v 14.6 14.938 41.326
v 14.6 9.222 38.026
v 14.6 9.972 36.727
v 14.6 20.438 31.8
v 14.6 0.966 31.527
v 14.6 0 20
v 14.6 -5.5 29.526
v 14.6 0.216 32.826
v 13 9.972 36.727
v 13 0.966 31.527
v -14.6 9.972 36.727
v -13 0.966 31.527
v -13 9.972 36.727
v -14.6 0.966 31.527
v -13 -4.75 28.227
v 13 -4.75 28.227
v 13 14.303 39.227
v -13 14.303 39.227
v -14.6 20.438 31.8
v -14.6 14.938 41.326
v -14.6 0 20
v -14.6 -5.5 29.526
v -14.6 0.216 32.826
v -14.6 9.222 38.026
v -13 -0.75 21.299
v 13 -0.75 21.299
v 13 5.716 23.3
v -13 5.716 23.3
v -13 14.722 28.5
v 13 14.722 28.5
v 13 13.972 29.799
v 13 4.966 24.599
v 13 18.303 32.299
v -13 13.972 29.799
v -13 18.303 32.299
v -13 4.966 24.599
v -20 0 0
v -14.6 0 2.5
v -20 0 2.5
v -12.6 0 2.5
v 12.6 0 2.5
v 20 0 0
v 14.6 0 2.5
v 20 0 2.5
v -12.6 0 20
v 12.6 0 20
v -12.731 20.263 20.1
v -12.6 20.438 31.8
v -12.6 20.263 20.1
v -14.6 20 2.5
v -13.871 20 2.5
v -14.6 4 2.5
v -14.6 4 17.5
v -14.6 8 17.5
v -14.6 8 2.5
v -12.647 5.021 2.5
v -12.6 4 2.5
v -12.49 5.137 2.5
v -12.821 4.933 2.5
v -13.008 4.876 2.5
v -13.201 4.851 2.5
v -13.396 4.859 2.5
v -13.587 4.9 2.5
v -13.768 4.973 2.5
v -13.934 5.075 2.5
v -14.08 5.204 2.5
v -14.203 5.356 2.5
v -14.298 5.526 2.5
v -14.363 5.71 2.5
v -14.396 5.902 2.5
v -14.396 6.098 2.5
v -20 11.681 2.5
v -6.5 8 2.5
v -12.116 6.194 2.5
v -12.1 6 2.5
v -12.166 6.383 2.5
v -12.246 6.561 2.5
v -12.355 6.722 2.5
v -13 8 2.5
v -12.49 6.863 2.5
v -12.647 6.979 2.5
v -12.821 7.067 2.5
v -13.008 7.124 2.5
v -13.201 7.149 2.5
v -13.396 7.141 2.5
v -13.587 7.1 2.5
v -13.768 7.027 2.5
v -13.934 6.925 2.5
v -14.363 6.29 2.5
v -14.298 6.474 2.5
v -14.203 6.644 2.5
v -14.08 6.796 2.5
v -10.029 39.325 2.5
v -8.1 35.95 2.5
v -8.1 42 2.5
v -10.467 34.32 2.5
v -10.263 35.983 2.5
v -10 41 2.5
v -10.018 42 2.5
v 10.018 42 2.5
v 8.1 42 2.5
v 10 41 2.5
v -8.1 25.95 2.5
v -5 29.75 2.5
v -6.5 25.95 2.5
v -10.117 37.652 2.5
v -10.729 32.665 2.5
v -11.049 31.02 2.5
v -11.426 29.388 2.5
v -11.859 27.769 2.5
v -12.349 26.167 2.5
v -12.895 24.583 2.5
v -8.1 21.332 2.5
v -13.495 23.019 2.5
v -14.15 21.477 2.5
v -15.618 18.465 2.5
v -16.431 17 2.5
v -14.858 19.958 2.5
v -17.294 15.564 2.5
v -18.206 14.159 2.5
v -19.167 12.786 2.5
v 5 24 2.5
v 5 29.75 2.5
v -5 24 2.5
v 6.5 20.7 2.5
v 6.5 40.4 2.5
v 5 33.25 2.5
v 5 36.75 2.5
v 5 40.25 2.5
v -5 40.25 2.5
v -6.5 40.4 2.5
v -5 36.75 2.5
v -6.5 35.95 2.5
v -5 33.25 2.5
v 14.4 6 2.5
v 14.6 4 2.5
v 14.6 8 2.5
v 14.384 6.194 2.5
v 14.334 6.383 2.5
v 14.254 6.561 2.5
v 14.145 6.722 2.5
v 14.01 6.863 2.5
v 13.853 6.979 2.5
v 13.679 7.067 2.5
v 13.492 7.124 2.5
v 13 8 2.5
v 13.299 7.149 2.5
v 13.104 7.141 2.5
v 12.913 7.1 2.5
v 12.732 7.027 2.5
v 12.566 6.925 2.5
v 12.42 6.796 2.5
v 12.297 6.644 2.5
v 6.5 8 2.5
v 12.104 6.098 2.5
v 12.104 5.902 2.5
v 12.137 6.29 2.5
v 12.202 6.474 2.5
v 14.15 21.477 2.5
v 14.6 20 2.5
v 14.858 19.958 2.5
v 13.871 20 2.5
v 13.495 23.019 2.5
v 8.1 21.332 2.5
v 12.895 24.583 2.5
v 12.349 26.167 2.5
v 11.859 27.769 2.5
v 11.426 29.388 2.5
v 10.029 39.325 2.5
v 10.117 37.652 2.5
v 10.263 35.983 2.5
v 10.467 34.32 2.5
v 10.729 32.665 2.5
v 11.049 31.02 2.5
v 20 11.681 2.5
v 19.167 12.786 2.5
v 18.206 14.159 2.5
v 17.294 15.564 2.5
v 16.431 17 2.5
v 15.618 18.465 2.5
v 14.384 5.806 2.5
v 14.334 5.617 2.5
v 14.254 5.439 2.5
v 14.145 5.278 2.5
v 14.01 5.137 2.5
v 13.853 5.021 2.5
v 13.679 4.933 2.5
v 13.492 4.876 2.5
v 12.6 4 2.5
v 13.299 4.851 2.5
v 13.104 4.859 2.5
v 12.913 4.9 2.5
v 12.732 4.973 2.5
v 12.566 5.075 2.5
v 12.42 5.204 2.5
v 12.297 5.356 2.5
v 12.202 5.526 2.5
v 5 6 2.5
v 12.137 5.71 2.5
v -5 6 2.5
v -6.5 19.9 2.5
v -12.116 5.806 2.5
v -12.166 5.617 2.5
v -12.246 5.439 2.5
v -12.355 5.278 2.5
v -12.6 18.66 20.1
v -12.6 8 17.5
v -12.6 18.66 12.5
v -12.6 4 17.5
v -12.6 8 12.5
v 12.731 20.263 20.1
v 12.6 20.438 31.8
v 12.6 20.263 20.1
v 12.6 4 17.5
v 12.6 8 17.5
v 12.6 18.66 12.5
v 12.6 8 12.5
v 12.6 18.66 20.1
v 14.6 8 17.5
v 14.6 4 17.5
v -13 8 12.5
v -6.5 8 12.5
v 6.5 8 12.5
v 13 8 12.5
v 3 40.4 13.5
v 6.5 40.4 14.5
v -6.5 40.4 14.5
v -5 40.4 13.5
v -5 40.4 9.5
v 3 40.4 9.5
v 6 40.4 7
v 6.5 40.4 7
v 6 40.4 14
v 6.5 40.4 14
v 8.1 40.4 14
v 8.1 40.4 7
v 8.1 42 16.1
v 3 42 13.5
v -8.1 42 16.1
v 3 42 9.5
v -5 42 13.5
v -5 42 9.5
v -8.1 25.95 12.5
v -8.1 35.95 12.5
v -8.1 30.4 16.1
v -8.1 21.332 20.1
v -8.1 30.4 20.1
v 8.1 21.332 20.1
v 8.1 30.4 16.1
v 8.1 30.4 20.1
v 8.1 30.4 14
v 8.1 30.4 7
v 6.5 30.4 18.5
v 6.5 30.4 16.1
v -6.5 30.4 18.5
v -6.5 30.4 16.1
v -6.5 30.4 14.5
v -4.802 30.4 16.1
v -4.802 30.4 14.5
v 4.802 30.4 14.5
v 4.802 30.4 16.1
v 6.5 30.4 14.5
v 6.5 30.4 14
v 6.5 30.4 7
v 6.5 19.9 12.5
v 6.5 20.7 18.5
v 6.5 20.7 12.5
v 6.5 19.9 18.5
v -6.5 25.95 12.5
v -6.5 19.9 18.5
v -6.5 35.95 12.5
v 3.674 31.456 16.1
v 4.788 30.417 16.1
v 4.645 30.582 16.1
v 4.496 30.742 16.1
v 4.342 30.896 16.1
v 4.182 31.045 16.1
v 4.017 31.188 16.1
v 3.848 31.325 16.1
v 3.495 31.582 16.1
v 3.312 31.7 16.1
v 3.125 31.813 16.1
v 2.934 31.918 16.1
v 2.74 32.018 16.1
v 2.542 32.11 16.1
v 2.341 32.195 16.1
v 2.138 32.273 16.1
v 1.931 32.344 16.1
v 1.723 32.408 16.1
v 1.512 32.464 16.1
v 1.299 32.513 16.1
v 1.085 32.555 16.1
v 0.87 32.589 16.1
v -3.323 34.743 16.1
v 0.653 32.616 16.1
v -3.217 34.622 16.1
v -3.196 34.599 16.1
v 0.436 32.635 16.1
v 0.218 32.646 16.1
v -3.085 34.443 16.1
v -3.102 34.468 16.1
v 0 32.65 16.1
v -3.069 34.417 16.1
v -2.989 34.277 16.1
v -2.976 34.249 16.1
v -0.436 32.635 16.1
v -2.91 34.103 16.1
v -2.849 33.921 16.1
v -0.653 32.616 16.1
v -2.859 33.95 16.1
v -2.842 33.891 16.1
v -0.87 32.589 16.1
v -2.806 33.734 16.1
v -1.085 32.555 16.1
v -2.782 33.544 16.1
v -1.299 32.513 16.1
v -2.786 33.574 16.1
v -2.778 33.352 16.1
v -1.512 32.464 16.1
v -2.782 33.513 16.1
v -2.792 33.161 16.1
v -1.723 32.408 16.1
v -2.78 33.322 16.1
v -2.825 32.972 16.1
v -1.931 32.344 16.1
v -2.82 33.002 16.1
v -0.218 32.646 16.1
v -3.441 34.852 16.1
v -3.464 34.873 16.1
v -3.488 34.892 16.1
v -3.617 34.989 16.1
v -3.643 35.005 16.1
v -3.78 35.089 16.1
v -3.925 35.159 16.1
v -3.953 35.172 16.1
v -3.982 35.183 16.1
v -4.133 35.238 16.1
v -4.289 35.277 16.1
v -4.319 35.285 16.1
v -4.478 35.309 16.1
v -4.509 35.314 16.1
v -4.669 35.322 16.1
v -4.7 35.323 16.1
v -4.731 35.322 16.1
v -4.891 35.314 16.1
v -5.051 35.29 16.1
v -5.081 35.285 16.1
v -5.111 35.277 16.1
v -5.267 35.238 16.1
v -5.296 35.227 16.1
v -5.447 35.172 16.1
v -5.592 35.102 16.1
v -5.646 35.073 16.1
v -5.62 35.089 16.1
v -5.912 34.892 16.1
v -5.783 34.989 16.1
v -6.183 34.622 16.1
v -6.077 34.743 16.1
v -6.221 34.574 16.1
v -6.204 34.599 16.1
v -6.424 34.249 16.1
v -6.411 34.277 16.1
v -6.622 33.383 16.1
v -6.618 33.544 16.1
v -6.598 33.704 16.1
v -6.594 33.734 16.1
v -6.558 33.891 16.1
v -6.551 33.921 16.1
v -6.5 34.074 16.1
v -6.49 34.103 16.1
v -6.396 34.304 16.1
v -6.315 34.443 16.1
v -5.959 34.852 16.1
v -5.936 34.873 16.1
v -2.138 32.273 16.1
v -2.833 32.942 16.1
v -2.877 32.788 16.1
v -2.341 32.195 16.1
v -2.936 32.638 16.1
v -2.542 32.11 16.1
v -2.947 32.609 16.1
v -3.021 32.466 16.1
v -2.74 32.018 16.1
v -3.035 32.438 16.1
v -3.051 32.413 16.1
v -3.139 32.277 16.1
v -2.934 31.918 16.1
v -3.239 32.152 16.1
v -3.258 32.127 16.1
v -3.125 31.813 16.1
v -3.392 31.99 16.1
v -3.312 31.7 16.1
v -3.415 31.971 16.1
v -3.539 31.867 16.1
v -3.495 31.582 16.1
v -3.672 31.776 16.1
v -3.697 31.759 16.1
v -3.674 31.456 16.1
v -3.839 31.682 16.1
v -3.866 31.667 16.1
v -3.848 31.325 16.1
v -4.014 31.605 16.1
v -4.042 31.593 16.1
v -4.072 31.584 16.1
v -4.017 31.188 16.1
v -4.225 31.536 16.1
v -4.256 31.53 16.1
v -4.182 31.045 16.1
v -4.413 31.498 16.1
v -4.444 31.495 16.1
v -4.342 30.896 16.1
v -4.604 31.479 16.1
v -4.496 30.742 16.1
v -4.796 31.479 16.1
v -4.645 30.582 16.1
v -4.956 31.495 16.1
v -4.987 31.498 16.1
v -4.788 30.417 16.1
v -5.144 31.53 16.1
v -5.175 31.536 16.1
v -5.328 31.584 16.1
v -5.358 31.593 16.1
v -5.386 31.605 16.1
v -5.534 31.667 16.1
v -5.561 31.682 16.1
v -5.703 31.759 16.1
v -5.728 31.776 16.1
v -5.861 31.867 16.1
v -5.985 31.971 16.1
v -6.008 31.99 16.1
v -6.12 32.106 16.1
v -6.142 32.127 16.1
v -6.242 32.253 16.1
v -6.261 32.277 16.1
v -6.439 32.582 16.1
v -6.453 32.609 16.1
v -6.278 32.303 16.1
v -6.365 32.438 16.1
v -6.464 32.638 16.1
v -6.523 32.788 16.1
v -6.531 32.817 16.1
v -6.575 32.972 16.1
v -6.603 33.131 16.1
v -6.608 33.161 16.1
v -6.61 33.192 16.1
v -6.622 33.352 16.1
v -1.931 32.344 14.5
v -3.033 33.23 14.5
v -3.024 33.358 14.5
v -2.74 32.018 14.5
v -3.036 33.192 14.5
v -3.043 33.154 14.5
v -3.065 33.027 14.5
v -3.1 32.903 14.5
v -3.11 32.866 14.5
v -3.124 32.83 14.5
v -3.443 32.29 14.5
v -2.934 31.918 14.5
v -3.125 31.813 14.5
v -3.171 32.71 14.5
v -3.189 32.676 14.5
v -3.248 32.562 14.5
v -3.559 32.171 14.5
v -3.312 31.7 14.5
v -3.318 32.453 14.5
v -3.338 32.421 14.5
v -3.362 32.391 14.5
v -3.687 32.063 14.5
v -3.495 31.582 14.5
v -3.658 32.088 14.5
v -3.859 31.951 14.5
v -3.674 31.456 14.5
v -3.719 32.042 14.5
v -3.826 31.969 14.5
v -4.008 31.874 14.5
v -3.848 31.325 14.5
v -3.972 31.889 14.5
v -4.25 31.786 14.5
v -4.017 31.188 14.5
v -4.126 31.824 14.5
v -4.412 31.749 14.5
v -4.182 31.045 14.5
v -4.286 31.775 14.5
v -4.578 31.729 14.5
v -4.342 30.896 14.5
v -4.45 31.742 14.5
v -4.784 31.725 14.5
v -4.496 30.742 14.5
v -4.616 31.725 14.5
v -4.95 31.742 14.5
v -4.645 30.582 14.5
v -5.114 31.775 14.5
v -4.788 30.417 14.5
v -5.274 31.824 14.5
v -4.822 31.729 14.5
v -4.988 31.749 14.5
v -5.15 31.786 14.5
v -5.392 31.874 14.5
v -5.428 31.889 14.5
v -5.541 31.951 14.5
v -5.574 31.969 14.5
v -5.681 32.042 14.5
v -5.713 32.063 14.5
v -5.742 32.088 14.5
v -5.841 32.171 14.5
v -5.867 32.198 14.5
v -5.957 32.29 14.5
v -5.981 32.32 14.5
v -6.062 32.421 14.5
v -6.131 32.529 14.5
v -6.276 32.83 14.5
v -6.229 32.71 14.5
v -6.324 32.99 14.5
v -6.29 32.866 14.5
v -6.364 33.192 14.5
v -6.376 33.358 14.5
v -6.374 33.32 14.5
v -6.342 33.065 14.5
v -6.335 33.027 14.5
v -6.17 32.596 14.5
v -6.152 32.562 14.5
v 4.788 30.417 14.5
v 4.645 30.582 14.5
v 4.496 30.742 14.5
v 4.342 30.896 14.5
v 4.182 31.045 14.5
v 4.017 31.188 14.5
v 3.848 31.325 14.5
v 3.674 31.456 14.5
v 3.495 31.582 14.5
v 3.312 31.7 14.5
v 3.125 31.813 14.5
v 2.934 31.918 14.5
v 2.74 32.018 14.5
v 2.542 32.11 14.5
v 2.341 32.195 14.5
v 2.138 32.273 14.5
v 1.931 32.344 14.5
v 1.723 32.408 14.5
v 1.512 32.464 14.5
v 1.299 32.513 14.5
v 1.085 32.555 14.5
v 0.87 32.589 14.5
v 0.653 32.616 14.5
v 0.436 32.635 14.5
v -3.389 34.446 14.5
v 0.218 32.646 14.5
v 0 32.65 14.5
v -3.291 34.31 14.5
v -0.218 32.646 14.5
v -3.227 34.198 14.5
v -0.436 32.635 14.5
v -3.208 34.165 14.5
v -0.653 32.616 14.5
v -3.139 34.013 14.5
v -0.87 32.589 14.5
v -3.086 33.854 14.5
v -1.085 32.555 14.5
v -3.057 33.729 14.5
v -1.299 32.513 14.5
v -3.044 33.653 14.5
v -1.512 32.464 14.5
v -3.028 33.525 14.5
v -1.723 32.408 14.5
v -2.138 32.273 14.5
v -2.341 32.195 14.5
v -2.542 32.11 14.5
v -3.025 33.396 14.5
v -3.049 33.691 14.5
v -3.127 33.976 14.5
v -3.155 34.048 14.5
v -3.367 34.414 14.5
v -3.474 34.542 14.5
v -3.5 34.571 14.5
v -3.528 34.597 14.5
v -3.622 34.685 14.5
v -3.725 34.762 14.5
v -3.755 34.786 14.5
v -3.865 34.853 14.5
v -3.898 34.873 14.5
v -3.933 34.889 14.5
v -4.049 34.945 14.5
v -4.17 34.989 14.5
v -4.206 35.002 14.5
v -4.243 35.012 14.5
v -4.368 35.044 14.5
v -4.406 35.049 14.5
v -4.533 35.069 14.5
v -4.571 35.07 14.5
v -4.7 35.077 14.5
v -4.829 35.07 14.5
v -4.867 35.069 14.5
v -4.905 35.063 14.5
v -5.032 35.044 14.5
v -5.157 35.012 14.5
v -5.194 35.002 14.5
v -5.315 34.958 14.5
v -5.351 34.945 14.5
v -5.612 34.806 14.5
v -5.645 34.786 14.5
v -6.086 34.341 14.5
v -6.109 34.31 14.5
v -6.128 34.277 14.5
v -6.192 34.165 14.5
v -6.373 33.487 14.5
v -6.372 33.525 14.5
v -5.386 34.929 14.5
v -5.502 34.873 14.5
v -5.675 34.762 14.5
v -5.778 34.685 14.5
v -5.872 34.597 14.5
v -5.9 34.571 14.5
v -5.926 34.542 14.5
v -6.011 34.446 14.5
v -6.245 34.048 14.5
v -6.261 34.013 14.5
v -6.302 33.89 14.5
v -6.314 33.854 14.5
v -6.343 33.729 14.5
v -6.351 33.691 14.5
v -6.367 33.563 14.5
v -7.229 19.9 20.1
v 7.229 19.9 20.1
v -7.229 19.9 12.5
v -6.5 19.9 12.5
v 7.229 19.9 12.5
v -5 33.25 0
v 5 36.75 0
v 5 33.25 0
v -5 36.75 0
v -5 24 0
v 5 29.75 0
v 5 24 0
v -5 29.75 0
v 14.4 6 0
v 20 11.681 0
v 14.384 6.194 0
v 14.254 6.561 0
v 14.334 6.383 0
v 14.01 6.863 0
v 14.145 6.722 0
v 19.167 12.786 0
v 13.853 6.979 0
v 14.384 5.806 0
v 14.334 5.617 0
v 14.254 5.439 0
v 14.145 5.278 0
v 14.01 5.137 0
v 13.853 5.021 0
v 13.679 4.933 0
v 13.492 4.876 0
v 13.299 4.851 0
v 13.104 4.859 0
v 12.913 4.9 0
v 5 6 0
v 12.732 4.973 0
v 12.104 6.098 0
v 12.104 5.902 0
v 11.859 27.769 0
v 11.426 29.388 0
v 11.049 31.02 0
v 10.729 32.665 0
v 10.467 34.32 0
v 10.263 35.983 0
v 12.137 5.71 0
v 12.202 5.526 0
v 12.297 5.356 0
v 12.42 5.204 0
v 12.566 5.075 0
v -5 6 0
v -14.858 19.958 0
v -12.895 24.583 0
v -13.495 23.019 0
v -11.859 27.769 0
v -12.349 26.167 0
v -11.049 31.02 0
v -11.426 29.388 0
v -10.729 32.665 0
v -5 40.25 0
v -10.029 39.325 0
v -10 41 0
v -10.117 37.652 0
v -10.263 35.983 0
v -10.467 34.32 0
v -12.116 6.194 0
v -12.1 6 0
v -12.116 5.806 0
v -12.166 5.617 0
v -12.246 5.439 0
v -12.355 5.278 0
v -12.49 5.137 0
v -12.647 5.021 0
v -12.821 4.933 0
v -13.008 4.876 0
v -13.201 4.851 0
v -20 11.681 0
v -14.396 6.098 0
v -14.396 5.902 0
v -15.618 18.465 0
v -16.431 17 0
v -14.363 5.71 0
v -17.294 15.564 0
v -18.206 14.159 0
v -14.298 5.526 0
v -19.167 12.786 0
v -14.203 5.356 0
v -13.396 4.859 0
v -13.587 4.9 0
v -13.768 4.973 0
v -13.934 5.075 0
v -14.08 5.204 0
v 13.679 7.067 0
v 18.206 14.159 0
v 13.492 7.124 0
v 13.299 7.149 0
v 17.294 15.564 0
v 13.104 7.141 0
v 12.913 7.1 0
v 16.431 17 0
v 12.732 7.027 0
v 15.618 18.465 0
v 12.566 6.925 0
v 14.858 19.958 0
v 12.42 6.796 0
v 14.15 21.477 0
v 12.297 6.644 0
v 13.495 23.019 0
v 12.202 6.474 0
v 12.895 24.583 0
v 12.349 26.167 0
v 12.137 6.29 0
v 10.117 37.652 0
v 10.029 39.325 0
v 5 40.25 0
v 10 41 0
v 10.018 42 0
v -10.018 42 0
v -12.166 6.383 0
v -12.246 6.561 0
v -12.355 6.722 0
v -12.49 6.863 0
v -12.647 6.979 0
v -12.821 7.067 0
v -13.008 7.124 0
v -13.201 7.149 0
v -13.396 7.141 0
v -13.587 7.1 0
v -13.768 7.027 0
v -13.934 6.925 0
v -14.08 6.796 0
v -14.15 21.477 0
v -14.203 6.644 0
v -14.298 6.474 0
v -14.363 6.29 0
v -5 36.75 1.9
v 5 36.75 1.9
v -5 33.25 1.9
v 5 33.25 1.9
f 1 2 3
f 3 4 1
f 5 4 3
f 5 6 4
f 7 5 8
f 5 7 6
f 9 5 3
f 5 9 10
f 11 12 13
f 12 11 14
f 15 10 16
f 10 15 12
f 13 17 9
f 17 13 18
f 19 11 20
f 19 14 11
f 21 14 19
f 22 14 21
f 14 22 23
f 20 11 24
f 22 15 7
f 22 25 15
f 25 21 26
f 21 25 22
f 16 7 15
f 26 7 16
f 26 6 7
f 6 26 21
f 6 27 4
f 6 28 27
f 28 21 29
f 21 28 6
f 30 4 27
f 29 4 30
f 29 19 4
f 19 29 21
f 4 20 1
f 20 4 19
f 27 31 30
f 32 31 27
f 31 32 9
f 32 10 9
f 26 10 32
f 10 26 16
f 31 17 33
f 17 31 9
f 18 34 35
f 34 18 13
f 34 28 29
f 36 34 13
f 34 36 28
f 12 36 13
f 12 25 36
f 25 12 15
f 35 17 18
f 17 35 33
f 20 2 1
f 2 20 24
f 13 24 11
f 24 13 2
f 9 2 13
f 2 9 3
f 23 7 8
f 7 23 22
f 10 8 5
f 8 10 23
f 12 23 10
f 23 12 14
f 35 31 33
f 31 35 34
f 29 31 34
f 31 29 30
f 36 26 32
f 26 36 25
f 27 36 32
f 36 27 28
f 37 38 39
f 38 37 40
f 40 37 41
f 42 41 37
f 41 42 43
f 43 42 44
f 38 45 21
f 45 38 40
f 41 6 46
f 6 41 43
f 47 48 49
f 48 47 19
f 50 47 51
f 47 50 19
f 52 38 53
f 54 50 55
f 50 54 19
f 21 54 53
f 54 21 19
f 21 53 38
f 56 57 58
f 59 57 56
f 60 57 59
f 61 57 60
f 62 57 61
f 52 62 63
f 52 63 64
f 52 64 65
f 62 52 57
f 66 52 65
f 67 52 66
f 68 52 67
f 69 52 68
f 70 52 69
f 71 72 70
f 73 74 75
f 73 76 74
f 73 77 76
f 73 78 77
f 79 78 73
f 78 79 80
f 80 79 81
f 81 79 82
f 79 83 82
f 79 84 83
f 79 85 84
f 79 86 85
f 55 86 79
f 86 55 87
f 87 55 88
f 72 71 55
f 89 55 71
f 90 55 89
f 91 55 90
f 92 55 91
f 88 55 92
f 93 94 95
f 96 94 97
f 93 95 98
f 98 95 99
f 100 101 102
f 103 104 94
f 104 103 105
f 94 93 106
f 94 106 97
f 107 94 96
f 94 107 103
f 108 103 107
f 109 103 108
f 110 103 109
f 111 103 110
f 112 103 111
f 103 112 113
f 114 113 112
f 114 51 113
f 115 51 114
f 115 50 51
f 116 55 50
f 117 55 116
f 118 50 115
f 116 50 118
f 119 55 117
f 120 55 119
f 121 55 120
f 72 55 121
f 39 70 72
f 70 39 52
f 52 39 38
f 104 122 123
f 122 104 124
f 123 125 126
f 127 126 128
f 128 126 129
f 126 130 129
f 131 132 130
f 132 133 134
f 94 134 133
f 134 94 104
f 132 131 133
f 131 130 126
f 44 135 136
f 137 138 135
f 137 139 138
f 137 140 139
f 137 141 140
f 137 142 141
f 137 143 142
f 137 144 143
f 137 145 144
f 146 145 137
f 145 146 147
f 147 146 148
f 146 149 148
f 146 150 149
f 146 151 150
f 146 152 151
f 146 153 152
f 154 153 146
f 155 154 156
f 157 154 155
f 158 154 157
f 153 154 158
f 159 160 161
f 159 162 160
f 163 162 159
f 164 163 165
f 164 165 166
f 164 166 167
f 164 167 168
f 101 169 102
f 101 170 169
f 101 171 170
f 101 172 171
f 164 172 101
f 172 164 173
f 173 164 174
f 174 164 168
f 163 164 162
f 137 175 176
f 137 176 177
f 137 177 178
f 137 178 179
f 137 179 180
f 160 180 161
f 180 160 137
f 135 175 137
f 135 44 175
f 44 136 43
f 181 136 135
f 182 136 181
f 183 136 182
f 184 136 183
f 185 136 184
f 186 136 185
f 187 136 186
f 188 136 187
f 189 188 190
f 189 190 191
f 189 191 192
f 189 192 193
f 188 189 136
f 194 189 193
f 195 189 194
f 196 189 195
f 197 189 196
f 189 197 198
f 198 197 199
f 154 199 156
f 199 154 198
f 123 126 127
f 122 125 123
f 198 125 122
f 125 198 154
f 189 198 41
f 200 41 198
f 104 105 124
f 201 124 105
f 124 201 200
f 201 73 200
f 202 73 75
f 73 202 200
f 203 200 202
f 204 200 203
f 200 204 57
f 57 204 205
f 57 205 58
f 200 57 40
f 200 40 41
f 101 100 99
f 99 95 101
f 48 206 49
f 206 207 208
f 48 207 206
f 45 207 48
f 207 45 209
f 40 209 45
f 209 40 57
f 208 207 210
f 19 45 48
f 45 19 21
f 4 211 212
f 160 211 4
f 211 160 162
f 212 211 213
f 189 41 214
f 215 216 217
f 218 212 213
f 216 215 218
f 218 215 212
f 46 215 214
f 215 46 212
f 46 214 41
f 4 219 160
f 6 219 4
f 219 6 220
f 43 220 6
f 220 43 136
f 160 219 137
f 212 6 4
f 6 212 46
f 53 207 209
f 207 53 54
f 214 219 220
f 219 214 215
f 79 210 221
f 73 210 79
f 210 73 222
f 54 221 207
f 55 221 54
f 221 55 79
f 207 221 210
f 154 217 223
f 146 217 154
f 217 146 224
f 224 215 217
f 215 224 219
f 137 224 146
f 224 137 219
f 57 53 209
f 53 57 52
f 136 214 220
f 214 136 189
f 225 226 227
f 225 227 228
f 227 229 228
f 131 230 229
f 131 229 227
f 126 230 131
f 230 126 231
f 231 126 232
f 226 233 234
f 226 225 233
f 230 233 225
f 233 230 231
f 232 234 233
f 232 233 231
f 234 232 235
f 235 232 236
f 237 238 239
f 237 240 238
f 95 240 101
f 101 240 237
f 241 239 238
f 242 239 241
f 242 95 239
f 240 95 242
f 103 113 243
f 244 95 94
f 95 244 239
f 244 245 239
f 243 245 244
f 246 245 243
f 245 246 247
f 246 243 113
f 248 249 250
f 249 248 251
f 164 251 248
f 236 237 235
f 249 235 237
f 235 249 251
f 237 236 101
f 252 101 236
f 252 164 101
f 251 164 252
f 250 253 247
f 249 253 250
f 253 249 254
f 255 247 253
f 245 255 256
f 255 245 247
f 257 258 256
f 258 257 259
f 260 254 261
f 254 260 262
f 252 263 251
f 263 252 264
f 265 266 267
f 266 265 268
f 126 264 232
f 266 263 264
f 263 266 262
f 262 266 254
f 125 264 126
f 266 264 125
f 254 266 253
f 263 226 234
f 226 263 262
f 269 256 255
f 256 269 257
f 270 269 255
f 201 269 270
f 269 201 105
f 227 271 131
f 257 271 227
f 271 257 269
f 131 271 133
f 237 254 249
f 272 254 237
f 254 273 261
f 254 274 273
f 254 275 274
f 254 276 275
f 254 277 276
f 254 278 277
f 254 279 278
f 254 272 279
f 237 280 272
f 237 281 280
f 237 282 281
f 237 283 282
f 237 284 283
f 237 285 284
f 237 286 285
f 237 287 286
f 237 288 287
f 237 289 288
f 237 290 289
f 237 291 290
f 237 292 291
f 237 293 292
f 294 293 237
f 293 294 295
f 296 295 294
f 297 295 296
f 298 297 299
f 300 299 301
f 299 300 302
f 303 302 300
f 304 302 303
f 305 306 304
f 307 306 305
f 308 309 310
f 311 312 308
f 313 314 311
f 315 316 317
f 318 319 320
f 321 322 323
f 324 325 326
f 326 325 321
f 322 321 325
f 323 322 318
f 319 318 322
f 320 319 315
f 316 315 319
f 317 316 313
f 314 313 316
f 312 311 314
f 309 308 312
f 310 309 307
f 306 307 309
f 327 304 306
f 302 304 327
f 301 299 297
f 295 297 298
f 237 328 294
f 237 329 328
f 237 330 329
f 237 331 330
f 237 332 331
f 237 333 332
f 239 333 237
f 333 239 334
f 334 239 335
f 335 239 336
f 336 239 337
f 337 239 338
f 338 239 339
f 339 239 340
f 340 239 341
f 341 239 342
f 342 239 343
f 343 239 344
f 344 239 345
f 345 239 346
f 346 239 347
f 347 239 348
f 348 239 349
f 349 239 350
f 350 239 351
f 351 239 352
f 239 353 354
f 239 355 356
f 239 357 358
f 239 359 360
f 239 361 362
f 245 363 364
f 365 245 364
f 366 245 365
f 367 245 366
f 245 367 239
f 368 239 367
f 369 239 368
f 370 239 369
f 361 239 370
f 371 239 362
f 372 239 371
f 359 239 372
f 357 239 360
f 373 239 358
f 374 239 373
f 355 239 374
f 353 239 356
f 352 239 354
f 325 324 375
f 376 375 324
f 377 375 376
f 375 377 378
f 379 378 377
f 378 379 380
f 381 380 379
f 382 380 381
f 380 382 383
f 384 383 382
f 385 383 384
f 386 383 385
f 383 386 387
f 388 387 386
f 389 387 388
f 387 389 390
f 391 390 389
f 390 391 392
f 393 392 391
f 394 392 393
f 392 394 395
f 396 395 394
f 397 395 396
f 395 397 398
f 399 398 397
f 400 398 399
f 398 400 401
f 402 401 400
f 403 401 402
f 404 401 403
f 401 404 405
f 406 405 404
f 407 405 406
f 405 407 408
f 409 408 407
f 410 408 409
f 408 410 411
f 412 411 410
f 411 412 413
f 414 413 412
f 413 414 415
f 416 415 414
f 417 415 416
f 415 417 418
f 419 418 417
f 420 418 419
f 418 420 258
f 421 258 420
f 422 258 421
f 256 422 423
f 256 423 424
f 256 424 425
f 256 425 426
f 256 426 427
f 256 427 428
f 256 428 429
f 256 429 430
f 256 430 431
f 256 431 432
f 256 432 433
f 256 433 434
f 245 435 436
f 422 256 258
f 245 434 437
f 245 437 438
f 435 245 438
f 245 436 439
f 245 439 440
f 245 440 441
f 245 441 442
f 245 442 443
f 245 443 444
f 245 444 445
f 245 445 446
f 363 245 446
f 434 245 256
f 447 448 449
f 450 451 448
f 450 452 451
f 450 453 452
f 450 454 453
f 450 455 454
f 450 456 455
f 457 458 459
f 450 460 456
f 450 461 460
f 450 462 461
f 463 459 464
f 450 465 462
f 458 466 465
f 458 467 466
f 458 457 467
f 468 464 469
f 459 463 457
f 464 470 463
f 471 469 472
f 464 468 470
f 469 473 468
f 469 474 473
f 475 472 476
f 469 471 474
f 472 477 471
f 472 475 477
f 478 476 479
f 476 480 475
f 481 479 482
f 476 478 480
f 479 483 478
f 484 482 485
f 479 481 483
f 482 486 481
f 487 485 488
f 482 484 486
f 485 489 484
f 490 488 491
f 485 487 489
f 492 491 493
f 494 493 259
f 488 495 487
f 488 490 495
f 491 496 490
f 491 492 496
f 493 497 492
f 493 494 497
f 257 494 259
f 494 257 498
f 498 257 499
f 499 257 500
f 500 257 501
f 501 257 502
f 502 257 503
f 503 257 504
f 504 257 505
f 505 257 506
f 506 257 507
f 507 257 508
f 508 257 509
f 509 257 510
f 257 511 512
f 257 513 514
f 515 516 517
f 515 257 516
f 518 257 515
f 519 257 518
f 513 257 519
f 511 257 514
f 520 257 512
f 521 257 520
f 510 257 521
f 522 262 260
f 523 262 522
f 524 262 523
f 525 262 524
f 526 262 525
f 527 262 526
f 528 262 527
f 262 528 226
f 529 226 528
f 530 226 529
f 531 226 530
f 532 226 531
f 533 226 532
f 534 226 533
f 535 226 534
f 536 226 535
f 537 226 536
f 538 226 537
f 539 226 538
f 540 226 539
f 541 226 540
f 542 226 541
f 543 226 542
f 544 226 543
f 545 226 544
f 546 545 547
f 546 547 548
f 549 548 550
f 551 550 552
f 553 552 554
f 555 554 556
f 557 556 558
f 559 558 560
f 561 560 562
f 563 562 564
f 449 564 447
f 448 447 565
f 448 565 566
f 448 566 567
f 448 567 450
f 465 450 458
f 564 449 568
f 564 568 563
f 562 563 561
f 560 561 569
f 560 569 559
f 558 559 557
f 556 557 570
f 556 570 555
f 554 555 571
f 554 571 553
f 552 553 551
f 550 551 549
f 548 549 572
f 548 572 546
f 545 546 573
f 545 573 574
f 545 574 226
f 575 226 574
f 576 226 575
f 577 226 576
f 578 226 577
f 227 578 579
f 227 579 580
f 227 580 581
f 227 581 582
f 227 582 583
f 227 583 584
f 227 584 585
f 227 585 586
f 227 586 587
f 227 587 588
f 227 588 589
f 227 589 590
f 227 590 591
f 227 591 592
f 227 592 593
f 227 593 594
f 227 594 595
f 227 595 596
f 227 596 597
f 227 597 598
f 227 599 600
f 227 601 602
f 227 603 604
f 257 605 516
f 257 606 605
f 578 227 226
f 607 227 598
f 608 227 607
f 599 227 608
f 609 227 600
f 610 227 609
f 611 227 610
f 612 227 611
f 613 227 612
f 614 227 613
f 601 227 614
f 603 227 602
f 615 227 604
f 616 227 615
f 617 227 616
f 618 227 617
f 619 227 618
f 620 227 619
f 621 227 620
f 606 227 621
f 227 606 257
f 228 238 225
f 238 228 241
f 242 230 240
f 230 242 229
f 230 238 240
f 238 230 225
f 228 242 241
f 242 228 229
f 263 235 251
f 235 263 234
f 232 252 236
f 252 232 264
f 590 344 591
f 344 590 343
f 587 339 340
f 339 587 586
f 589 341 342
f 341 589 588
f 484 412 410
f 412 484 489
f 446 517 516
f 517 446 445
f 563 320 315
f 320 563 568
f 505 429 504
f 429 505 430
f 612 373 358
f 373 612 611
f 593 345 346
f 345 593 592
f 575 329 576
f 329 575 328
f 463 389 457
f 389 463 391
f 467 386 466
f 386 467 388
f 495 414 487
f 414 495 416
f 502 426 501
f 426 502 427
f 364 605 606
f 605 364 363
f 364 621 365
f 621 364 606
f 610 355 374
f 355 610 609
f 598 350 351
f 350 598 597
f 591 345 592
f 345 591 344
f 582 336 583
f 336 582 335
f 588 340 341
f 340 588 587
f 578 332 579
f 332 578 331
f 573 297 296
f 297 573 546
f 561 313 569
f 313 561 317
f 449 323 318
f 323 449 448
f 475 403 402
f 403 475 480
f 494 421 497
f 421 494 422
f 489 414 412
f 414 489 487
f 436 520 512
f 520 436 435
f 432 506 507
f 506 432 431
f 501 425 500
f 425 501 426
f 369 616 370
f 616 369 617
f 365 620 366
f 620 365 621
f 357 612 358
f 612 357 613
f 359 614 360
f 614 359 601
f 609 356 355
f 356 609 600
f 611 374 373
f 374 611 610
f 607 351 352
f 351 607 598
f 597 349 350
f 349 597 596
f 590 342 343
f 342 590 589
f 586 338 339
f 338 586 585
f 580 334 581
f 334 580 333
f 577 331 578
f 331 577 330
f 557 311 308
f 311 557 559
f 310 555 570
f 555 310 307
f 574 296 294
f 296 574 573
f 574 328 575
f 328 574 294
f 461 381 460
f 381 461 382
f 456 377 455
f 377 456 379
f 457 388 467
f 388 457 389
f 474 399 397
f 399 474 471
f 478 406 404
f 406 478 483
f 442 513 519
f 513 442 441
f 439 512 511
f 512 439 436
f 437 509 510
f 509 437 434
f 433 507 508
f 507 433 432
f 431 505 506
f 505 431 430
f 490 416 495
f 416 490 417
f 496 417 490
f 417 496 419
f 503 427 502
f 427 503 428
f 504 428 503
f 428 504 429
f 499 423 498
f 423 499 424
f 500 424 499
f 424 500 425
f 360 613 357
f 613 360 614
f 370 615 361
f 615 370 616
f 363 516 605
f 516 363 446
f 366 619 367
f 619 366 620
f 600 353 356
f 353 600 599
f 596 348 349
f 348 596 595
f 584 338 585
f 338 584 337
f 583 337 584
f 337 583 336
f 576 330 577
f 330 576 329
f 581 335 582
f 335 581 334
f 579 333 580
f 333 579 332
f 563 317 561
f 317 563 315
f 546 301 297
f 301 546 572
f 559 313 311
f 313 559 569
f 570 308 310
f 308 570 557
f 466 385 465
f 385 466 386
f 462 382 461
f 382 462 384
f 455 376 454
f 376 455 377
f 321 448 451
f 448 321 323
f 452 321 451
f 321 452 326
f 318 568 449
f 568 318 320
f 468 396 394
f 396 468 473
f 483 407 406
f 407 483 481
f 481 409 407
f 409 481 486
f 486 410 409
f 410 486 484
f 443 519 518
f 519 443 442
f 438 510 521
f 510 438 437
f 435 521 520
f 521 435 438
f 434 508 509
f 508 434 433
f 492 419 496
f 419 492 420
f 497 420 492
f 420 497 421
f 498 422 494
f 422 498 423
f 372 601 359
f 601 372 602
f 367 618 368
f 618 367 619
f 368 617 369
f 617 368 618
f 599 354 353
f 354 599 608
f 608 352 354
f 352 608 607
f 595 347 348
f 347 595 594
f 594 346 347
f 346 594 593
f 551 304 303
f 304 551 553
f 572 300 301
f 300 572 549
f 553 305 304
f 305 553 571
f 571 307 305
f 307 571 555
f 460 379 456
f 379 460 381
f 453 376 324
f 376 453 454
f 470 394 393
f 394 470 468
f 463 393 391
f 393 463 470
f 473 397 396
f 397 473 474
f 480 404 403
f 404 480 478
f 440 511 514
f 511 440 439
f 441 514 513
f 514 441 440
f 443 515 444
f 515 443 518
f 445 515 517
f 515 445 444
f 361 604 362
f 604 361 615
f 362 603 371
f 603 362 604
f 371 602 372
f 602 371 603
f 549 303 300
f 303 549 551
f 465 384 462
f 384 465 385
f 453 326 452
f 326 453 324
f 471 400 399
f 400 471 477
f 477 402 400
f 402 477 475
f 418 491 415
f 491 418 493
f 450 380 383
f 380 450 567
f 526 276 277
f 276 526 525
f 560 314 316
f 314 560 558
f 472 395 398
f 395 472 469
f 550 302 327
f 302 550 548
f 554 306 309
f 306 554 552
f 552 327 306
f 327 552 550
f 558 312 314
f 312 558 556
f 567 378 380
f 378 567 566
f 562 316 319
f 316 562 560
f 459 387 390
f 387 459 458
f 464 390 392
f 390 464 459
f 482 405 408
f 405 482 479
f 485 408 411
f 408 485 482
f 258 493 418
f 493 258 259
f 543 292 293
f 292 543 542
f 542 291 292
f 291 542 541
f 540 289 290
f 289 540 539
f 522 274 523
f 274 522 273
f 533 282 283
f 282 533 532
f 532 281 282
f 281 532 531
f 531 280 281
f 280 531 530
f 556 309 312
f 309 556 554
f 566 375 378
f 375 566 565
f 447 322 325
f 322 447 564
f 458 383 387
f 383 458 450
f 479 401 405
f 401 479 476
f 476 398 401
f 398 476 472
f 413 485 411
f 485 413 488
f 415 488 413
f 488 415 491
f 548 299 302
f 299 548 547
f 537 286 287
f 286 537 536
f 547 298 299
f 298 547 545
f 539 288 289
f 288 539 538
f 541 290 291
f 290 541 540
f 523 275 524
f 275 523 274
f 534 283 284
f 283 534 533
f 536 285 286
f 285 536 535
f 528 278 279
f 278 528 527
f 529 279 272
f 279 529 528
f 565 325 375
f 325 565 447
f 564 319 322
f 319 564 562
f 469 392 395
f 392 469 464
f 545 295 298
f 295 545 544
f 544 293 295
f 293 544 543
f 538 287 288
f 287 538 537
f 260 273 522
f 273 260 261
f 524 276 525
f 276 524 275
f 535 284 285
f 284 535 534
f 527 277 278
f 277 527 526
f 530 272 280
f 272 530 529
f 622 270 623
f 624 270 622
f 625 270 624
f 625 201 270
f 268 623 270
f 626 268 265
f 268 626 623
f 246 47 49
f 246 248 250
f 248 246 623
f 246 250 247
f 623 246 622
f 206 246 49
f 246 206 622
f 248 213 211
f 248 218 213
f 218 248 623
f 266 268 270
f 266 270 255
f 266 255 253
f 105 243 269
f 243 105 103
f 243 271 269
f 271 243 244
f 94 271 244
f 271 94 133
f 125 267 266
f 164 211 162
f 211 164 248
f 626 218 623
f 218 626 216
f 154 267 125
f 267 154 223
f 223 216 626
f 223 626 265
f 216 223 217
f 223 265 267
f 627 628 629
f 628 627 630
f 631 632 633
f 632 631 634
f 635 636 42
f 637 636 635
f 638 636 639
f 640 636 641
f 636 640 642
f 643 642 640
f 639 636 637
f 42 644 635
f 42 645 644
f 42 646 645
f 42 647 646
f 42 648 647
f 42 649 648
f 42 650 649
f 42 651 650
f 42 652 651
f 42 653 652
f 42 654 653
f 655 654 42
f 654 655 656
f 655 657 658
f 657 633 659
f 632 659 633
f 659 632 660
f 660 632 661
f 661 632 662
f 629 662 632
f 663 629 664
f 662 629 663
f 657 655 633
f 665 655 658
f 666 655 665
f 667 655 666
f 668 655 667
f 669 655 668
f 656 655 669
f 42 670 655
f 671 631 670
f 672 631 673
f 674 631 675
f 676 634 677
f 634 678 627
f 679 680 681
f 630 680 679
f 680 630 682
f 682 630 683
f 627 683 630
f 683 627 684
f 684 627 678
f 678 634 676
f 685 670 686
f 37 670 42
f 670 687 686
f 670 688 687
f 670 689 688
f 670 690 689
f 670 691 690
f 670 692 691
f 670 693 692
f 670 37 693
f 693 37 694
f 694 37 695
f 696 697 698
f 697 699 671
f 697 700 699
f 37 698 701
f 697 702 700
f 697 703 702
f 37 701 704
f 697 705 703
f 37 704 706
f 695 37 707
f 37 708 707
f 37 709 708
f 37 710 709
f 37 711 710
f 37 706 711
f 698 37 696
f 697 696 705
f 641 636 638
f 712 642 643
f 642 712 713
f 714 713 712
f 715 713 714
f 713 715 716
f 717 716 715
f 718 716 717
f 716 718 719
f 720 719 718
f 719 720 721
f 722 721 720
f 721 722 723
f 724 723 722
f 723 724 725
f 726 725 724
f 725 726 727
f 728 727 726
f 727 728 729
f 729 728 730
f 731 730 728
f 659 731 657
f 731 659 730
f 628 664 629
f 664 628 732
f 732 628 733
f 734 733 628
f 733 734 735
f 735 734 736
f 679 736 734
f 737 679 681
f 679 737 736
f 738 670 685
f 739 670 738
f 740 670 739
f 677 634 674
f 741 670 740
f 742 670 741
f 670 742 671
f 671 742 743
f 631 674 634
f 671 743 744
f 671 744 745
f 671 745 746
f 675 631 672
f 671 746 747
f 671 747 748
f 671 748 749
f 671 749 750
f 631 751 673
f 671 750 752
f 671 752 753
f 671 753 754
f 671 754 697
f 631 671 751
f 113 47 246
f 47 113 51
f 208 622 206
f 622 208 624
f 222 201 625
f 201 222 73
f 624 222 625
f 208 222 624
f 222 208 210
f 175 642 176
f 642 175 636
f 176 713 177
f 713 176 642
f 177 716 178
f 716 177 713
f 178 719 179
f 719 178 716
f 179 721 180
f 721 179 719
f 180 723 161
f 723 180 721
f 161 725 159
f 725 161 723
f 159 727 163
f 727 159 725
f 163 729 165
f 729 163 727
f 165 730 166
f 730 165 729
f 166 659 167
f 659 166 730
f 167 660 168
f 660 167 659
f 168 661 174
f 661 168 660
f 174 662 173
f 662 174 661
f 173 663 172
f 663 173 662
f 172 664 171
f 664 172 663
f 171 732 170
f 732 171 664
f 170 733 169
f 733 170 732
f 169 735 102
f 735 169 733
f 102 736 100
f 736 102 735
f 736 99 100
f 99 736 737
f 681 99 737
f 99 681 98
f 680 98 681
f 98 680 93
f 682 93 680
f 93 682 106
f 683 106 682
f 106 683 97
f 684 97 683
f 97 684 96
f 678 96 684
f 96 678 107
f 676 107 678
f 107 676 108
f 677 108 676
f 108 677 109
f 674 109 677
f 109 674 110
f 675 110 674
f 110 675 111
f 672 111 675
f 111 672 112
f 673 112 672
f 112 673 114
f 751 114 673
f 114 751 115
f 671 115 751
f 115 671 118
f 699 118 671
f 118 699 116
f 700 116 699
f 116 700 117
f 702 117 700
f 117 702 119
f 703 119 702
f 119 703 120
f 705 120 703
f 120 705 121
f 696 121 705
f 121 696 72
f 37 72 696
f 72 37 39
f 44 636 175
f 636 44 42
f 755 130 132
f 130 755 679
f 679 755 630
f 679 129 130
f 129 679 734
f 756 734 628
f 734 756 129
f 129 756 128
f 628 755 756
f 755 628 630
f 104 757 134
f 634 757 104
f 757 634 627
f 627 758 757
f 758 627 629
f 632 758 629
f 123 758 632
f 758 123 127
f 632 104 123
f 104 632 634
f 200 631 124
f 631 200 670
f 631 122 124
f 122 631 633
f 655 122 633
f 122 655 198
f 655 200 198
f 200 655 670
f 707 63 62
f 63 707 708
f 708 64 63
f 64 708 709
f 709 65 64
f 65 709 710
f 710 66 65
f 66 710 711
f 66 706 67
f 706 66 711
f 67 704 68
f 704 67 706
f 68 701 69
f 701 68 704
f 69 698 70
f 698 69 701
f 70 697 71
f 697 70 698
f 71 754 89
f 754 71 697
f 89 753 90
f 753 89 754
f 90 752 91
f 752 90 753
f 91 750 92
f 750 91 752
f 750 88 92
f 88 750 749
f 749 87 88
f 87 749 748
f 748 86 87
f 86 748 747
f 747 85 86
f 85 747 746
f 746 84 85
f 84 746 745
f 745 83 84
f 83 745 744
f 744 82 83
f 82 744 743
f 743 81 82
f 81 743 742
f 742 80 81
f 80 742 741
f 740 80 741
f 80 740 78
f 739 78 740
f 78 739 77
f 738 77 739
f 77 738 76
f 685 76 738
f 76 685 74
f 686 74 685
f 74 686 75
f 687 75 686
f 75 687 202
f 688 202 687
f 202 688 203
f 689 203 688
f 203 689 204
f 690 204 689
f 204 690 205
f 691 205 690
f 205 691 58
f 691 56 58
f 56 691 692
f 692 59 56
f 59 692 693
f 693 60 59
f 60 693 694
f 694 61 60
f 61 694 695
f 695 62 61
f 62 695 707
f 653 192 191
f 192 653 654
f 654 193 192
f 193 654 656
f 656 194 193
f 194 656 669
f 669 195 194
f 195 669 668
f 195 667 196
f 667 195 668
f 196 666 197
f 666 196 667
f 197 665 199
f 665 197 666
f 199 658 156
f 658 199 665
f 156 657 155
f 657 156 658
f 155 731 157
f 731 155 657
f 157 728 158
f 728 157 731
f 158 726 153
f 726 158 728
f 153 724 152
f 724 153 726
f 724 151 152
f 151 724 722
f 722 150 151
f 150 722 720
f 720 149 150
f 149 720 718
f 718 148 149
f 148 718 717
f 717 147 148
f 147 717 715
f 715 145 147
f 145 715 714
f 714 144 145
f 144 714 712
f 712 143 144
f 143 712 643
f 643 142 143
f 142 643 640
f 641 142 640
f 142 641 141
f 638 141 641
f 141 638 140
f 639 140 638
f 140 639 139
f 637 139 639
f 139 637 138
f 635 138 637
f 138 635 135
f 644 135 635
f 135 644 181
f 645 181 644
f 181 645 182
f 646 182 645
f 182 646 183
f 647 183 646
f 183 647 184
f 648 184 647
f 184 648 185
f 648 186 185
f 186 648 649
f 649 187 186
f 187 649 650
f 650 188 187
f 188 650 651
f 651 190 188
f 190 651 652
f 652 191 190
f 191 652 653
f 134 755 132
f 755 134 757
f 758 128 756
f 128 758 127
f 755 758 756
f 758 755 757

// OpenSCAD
// M80 Pro GPS + VIFLY Finder 2 mount for iFlight Protek 35

$fs = $preview ? 0.5 : 0.2;
$fa = $preview ? 10 : 2;

// base plate
h0 = 2.5;

// P35 mounting plate
w0 = 40;
l0 = 42;

// mounting holes placement
dh = 2.3; // hole diameter
w1 = 26.5;
l1 = 6;
sd = 4.0; // scredriver diameter
sdh = 15; // scredriver hold heights

// duct radius cutout
duct_x = 58;
duct_y = 41;
duct_r = 48;

// cutout for the power connector
pw = 10;
pl = 18;
py = 6;
ssh = 10; // side support height

// cutouts for strap
stw = 10;
stl = 3.5;
std = 3.5; // distance betweem them
stt = 0.6; // top cutout
st0 = l1 + 29; // central location for coutouts

// GPS mount
gmw = 26;
gmh = 8;
gml = 22; // real lenght = 25

bw = 1.6; // side border width

gcl = 5; // top cover length
gcw = 1.5; // top plate width

// GPS mount bottom
gmw0 = gmw + 2 * bw;
gml0 = gml + bw;

// GPS mount location
gmloc_a = 30; // angle
gmloc_z = 20;

// GPS mount support
gmsl = 20;
gmsw = 2;

// Beeper mount
bmw0 = 20.5 + bw;
bmd0 = 13 + 2 * bw;
bmh2 = 16;

eps = 0.5;

difference() { 
    // baseplate
    linear_extrude(h0) {
        difference() {
            translate([-w0 / 2, 0]) square([w0, l0]);
            translate([-w1 / 2, l1]) circle(d = dh);
            translate([ w1 / 2, l1]) circle(d = dh);
            translate([ duct_x, duct_y]) circle(r = duct_r);
            translate([-duct_x, duct_y]) circle(r = duct_r);
            translate([-pw / 2, py]) square([pw, pl]);
            translate([-stw / 2, st0 - stl - std / 2]) square([stw, stl]);
            translate([-stw / 2, st0       + std / 2]) square([stw, stl]);
        }
    }
    translate([-stw / 2, st0 - std / 2, h0 - stt]) 
        cube([stw, std, stt + eps]);
    
}

difference() {
    union() {
        translate([0, 0, gmloc_z])
            rotate([-gmloc_a, 0, 180]) 
                translate([0, -gml0, 0])
                    gps_case();
        translate([-gmw0 / 2, 0, 0]) gps_support();
        translate([ gmw0 / 2 - gmsw, 0, 0]) gps_support();
    }
    translate([-gmw0 / 2 - eps, l1 - sd / 2, h0]) cube([gmw0 + 2 * eps, sd, sdh]);
}

translate([bmd0 / 2, l0 - bmw0 / 2, 0])
    rotate([0, 0, 90])
        beeper_mount();

inner_side_structure();
mirror([1, 0, 0]) inner_side_structure();

module inner_side_structure() {
    // connector to beeper mount
    translate([0, 0, h0]) bg_connector(bmh2 + bw);
    // side support
    x0 = (bmd0 - 2 * bw) / 2;
    y0 = l1 + sd / 2;
    h = h0 + ssh;
    x1 = gmw / 2;
    hull() {
        translate([x0, y0, 0])
            cube([bw, gmsl - y0, h]);
        translate([x0, y0, 0])
            cube([x1 - x0, bw, h]);
        bg_connector(h);
    }
}

module bg_connector(h) {
    linear_extrude(h) {
        hull() {
            translate([bmd0 / 2 - bw / 2, l0 - bmw0 + bw / 2])
                circle(d = bw);
            translate([gmw0 / 2 - bw / 2, gmsl - bw / 2])
                circle(d = bw);
        }
    }
}

module gps_support() {
    rotate([90, 0, 90])
        linear_extrude(gmsw) {
            polygon([
                [gmsl, h0],
                [0, h0], 
                [0, gmloc_z],
                [gml0 * cos(gmloc_a), gmloc_z + gml0 * sin(gmloc_a)]
            ]);
        }
}

module gps_case() {
    translate([-gmw / 2 - bw, 0, 0]) {
        difference() {
            cube([gmw + 2 * bw, gml + bw, gmh + gcw]);        
            translate([bw, bw, -eps]) cube([gmw, gml + eps, gmh + gcw + 2 * eps]);
        }
        translate([0, 0, gmh + gcw]) gps_case_top();
    }
    translate([-gmw / 2 - bw, 0, 0]) gps_case_top();
}

module gps_case_top(w) {
    translate([0, 0, 0])
        cube([gmw + 2 * bw, gcl + bw, gcw]);
    translate([0, gml - gcl, 0])
        cube([gmw + 2 * bw, gcl + bw, gcw]);
}

module beeper_mount() {
    // right cover
    h1 = 12;
    l1 = 10;

    con_z = 7.0;
    con_h = 4;
    con_y = 3.5;
    con_w = 8;

    but_z = 4.5;
    but_h = 7.0;
    but_x = 0.0;
    but_w = 10.0;

    led_d = 3.2;
    led_d2 = 4;
    led_x = 7;

    buz_d = 12.5;
    buz_x = 14;

    // left cover
    h2 = bmh2;
    l2 = bmw0 - bw - l1;

    // back cut
    back_w = 10;
    back_h = 10;

    difference() {
        union() {
            right_cover();
            left_cover();
        }
        translate([-back_w / 2, bmd0 - bw - eps, h0])
            cube([back_w, bw + 2 * eps, back_h]);
    }

    module right_cover() {
        difference() {
            union() {
                translate([bmw0 / 2 - bw, 0, h0 - eps])
                    cube([bw, bmd0, h1 + 2 * eps]);
                translate([bmw0 / 2 - bw - l1, 0, h0 - eps])
                    cube([l1, bw, h1 + 2 * eps]);
                translate([bmw0 / 2 - bw - l1, bmd0 - bw, h0 - eps])
                    cube([l1, bw, h1 + 2 * eps]);
                translate([bmw0 / 2 - bw - l1, 0, h0 + h1])
                    cube([l1 + bw, bmd0, bw]);
            }
            // connector hole
            translate([bmw0 / 2 - bw - eps, con_y + bw, con_z + h0])
                 cube([bw + 2 * eps, con_w, con_h]);
            // button hole
            translate([bmw0 / 2 - bw - but_x - but_w, -eps, but_z + h0])
                cube([but_w, bw + 2 * eps, but_h]);
            // led hole
            translate([bmw0 / 2 - bw - led_x, bmd0 - bw - (led_d2 + led_d) / 4, h1 + h0 - eps])
                cylinder(d1 = led_d, d2 = led_d2, h = bw + 2 * eps);  
            // buzzer hole
            translate([bmw0 / 2 - bw - buz_x, bmd0 / 2, h1 + h0 - eps])
                cylinder(d = buz_d, h = bw + 2 * eps);
        }
    }

    module left_cover() {
        difference() {
            union() {
                translate([-bmw0 / 2, 0, h0 - eps])
                    cube([l2, bw, h2 + 2 * eps]);
                translate([-bmw0 / 2, bmd0 - bw, h0 - eps])
                    cube([l2, bw, h2 + 2 * eps]);
                translate([-bmw0 / 2, 0, h0 + h2])
                    cube([l2, bmd0, bw]);
            }
        }
    }   
}
